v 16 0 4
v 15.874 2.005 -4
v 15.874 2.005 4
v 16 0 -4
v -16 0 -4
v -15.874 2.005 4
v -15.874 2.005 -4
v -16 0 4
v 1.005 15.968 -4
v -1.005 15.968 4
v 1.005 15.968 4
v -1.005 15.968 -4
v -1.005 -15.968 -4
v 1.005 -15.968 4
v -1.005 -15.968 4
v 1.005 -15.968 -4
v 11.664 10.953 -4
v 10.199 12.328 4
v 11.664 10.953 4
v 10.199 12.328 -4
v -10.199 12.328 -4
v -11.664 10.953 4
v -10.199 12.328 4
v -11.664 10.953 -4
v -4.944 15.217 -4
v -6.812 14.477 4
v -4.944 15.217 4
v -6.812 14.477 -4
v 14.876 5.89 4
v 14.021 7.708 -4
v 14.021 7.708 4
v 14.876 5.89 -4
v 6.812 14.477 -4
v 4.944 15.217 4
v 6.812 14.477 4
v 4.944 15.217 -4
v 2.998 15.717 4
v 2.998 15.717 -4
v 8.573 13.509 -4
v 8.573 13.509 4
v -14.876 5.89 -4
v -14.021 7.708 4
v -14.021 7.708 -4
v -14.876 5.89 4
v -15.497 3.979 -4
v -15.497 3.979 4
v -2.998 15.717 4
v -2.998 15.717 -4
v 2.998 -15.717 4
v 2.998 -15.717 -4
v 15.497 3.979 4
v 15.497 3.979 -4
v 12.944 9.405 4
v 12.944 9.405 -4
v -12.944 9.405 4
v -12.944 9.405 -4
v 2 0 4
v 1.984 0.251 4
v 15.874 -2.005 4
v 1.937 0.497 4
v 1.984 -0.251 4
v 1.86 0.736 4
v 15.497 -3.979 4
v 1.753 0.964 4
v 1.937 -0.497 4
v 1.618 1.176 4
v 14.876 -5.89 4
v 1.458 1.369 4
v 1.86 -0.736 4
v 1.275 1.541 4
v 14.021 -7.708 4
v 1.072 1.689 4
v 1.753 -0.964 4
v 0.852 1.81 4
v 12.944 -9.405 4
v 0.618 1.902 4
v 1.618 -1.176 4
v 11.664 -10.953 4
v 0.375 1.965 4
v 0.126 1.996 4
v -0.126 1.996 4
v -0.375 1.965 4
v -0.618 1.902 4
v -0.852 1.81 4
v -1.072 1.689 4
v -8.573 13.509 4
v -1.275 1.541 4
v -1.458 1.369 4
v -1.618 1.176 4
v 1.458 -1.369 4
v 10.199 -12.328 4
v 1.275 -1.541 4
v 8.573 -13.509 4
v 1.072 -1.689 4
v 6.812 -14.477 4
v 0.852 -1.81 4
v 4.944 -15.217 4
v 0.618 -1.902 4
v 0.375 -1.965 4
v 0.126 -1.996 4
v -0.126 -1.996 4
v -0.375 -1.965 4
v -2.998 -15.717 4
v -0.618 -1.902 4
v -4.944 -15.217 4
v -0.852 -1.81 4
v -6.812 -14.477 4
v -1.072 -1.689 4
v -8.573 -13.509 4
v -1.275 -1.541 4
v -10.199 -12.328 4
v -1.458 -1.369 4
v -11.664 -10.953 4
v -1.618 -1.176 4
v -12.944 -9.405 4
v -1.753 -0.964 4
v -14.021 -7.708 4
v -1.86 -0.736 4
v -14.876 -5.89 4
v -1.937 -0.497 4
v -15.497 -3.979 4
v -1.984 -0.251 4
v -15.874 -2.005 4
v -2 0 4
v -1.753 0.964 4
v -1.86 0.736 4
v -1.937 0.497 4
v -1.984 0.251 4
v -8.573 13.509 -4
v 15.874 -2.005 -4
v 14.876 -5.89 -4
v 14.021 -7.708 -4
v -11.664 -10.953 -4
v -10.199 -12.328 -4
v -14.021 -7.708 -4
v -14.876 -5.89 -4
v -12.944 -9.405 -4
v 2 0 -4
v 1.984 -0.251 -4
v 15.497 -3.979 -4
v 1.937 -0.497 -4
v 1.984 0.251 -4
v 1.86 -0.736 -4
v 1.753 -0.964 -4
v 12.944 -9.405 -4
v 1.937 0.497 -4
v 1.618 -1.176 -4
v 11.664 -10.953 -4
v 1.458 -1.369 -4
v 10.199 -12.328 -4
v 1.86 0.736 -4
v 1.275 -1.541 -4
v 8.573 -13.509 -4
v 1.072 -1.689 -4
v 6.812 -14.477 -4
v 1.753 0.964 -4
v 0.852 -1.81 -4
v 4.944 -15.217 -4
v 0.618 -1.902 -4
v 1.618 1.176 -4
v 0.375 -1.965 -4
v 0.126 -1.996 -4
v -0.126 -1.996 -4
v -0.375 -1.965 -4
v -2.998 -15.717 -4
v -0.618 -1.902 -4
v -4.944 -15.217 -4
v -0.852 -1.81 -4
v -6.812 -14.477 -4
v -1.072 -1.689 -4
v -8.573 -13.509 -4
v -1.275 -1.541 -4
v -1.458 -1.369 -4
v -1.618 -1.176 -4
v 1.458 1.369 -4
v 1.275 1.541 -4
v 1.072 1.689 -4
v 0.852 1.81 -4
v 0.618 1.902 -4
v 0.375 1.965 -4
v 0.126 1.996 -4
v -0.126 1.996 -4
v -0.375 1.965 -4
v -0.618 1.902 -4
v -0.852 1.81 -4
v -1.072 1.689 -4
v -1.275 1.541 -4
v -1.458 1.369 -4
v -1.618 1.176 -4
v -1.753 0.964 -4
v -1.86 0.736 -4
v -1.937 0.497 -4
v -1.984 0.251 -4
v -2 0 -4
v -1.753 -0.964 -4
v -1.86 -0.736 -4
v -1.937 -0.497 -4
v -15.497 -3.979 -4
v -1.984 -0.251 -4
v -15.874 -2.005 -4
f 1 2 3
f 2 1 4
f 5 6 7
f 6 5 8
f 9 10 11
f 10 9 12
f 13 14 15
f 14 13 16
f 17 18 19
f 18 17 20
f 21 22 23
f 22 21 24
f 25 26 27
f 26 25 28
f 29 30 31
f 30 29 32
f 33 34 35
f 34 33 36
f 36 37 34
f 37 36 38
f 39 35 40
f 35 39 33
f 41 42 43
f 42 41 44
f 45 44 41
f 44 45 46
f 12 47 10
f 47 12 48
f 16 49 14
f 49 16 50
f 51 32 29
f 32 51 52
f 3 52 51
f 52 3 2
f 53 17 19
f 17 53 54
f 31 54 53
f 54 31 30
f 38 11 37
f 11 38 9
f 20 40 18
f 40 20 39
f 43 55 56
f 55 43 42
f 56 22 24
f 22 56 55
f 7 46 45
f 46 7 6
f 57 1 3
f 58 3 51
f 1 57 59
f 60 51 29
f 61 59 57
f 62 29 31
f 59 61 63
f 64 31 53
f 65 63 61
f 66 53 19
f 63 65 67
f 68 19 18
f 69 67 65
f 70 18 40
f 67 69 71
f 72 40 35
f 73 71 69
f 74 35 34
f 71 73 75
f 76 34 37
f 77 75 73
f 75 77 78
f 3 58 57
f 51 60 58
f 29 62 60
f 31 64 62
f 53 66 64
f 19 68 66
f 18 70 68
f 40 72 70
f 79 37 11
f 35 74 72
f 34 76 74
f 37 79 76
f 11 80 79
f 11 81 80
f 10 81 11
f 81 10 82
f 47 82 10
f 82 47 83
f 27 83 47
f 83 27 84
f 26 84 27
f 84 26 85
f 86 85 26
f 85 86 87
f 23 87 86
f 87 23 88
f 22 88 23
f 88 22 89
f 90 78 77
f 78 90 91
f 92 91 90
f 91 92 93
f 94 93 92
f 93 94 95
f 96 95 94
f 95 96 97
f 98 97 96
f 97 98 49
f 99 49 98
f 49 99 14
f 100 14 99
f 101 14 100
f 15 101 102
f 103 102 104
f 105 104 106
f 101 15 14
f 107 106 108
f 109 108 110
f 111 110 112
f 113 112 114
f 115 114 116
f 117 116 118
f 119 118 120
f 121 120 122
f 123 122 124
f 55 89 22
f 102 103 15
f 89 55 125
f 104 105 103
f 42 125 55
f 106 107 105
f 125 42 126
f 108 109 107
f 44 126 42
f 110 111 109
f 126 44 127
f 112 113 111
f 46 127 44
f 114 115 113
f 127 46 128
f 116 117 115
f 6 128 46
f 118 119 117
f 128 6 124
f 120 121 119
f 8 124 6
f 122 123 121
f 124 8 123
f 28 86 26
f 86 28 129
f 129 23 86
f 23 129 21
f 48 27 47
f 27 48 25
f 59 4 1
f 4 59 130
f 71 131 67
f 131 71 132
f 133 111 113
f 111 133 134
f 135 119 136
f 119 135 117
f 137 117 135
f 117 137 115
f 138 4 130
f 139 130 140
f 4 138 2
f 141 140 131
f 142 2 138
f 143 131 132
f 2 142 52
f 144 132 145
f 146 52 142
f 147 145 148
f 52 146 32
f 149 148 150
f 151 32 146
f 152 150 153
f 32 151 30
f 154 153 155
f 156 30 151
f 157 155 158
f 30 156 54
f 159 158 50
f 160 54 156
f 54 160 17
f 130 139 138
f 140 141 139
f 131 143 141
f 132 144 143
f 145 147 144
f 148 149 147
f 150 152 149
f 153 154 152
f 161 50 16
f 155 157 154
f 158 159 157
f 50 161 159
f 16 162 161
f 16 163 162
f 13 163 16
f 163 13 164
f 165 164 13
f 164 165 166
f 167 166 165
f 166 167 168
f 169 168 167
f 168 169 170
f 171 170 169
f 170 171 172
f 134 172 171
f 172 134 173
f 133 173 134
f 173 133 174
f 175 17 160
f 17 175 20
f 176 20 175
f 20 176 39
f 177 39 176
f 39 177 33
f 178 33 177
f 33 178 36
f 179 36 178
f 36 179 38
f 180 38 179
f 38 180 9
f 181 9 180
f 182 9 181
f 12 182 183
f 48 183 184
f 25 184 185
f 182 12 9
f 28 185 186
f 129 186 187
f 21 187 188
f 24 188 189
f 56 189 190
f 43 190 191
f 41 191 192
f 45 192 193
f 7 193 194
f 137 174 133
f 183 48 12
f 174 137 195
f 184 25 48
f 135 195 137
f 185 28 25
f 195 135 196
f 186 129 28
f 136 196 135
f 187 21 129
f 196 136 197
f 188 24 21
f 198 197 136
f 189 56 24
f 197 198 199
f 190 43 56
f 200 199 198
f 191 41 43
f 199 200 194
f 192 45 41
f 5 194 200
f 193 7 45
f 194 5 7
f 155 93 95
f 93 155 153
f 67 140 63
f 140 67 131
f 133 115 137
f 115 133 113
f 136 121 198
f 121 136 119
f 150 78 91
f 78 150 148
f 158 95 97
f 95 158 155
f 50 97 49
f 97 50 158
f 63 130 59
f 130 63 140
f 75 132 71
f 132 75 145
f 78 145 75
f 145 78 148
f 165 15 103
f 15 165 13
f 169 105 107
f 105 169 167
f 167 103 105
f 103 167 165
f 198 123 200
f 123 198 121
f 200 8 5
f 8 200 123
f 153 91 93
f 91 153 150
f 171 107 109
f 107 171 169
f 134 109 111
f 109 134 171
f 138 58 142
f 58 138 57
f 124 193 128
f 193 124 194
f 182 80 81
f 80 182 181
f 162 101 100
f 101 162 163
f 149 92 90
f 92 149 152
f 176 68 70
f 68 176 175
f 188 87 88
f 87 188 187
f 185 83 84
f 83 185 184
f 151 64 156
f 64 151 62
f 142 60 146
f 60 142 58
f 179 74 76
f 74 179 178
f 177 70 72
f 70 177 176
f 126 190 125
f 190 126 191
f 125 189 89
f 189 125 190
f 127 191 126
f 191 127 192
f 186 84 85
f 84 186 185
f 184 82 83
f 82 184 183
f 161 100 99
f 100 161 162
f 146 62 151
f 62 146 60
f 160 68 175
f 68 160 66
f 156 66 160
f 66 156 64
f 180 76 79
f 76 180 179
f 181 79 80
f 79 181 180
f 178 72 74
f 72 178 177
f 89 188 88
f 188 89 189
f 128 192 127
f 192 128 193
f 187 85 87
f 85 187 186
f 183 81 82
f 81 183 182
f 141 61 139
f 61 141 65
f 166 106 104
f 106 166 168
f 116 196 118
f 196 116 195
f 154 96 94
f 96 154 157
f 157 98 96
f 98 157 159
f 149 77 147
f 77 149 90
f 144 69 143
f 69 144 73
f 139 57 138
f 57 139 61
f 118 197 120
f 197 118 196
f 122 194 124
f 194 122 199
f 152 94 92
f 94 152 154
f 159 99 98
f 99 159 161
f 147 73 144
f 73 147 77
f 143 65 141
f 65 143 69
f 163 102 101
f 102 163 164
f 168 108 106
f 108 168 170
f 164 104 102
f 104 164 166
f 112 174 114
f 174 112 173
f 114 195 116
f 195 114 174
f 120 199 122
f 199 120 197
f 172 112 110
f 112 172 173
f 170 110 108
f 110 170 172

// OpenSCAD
$fn = 50;


difference() {
	union() {
		translate(v = [0, 0, -4.0000000000]) {
			cylinder(h = 8, r = 16.0000000000);
		}
	}
	union() {
		translate(v = [0, 0, -100.0000000000]) {
			cylinder(h = 200, r = 2);
		}
	}
}
